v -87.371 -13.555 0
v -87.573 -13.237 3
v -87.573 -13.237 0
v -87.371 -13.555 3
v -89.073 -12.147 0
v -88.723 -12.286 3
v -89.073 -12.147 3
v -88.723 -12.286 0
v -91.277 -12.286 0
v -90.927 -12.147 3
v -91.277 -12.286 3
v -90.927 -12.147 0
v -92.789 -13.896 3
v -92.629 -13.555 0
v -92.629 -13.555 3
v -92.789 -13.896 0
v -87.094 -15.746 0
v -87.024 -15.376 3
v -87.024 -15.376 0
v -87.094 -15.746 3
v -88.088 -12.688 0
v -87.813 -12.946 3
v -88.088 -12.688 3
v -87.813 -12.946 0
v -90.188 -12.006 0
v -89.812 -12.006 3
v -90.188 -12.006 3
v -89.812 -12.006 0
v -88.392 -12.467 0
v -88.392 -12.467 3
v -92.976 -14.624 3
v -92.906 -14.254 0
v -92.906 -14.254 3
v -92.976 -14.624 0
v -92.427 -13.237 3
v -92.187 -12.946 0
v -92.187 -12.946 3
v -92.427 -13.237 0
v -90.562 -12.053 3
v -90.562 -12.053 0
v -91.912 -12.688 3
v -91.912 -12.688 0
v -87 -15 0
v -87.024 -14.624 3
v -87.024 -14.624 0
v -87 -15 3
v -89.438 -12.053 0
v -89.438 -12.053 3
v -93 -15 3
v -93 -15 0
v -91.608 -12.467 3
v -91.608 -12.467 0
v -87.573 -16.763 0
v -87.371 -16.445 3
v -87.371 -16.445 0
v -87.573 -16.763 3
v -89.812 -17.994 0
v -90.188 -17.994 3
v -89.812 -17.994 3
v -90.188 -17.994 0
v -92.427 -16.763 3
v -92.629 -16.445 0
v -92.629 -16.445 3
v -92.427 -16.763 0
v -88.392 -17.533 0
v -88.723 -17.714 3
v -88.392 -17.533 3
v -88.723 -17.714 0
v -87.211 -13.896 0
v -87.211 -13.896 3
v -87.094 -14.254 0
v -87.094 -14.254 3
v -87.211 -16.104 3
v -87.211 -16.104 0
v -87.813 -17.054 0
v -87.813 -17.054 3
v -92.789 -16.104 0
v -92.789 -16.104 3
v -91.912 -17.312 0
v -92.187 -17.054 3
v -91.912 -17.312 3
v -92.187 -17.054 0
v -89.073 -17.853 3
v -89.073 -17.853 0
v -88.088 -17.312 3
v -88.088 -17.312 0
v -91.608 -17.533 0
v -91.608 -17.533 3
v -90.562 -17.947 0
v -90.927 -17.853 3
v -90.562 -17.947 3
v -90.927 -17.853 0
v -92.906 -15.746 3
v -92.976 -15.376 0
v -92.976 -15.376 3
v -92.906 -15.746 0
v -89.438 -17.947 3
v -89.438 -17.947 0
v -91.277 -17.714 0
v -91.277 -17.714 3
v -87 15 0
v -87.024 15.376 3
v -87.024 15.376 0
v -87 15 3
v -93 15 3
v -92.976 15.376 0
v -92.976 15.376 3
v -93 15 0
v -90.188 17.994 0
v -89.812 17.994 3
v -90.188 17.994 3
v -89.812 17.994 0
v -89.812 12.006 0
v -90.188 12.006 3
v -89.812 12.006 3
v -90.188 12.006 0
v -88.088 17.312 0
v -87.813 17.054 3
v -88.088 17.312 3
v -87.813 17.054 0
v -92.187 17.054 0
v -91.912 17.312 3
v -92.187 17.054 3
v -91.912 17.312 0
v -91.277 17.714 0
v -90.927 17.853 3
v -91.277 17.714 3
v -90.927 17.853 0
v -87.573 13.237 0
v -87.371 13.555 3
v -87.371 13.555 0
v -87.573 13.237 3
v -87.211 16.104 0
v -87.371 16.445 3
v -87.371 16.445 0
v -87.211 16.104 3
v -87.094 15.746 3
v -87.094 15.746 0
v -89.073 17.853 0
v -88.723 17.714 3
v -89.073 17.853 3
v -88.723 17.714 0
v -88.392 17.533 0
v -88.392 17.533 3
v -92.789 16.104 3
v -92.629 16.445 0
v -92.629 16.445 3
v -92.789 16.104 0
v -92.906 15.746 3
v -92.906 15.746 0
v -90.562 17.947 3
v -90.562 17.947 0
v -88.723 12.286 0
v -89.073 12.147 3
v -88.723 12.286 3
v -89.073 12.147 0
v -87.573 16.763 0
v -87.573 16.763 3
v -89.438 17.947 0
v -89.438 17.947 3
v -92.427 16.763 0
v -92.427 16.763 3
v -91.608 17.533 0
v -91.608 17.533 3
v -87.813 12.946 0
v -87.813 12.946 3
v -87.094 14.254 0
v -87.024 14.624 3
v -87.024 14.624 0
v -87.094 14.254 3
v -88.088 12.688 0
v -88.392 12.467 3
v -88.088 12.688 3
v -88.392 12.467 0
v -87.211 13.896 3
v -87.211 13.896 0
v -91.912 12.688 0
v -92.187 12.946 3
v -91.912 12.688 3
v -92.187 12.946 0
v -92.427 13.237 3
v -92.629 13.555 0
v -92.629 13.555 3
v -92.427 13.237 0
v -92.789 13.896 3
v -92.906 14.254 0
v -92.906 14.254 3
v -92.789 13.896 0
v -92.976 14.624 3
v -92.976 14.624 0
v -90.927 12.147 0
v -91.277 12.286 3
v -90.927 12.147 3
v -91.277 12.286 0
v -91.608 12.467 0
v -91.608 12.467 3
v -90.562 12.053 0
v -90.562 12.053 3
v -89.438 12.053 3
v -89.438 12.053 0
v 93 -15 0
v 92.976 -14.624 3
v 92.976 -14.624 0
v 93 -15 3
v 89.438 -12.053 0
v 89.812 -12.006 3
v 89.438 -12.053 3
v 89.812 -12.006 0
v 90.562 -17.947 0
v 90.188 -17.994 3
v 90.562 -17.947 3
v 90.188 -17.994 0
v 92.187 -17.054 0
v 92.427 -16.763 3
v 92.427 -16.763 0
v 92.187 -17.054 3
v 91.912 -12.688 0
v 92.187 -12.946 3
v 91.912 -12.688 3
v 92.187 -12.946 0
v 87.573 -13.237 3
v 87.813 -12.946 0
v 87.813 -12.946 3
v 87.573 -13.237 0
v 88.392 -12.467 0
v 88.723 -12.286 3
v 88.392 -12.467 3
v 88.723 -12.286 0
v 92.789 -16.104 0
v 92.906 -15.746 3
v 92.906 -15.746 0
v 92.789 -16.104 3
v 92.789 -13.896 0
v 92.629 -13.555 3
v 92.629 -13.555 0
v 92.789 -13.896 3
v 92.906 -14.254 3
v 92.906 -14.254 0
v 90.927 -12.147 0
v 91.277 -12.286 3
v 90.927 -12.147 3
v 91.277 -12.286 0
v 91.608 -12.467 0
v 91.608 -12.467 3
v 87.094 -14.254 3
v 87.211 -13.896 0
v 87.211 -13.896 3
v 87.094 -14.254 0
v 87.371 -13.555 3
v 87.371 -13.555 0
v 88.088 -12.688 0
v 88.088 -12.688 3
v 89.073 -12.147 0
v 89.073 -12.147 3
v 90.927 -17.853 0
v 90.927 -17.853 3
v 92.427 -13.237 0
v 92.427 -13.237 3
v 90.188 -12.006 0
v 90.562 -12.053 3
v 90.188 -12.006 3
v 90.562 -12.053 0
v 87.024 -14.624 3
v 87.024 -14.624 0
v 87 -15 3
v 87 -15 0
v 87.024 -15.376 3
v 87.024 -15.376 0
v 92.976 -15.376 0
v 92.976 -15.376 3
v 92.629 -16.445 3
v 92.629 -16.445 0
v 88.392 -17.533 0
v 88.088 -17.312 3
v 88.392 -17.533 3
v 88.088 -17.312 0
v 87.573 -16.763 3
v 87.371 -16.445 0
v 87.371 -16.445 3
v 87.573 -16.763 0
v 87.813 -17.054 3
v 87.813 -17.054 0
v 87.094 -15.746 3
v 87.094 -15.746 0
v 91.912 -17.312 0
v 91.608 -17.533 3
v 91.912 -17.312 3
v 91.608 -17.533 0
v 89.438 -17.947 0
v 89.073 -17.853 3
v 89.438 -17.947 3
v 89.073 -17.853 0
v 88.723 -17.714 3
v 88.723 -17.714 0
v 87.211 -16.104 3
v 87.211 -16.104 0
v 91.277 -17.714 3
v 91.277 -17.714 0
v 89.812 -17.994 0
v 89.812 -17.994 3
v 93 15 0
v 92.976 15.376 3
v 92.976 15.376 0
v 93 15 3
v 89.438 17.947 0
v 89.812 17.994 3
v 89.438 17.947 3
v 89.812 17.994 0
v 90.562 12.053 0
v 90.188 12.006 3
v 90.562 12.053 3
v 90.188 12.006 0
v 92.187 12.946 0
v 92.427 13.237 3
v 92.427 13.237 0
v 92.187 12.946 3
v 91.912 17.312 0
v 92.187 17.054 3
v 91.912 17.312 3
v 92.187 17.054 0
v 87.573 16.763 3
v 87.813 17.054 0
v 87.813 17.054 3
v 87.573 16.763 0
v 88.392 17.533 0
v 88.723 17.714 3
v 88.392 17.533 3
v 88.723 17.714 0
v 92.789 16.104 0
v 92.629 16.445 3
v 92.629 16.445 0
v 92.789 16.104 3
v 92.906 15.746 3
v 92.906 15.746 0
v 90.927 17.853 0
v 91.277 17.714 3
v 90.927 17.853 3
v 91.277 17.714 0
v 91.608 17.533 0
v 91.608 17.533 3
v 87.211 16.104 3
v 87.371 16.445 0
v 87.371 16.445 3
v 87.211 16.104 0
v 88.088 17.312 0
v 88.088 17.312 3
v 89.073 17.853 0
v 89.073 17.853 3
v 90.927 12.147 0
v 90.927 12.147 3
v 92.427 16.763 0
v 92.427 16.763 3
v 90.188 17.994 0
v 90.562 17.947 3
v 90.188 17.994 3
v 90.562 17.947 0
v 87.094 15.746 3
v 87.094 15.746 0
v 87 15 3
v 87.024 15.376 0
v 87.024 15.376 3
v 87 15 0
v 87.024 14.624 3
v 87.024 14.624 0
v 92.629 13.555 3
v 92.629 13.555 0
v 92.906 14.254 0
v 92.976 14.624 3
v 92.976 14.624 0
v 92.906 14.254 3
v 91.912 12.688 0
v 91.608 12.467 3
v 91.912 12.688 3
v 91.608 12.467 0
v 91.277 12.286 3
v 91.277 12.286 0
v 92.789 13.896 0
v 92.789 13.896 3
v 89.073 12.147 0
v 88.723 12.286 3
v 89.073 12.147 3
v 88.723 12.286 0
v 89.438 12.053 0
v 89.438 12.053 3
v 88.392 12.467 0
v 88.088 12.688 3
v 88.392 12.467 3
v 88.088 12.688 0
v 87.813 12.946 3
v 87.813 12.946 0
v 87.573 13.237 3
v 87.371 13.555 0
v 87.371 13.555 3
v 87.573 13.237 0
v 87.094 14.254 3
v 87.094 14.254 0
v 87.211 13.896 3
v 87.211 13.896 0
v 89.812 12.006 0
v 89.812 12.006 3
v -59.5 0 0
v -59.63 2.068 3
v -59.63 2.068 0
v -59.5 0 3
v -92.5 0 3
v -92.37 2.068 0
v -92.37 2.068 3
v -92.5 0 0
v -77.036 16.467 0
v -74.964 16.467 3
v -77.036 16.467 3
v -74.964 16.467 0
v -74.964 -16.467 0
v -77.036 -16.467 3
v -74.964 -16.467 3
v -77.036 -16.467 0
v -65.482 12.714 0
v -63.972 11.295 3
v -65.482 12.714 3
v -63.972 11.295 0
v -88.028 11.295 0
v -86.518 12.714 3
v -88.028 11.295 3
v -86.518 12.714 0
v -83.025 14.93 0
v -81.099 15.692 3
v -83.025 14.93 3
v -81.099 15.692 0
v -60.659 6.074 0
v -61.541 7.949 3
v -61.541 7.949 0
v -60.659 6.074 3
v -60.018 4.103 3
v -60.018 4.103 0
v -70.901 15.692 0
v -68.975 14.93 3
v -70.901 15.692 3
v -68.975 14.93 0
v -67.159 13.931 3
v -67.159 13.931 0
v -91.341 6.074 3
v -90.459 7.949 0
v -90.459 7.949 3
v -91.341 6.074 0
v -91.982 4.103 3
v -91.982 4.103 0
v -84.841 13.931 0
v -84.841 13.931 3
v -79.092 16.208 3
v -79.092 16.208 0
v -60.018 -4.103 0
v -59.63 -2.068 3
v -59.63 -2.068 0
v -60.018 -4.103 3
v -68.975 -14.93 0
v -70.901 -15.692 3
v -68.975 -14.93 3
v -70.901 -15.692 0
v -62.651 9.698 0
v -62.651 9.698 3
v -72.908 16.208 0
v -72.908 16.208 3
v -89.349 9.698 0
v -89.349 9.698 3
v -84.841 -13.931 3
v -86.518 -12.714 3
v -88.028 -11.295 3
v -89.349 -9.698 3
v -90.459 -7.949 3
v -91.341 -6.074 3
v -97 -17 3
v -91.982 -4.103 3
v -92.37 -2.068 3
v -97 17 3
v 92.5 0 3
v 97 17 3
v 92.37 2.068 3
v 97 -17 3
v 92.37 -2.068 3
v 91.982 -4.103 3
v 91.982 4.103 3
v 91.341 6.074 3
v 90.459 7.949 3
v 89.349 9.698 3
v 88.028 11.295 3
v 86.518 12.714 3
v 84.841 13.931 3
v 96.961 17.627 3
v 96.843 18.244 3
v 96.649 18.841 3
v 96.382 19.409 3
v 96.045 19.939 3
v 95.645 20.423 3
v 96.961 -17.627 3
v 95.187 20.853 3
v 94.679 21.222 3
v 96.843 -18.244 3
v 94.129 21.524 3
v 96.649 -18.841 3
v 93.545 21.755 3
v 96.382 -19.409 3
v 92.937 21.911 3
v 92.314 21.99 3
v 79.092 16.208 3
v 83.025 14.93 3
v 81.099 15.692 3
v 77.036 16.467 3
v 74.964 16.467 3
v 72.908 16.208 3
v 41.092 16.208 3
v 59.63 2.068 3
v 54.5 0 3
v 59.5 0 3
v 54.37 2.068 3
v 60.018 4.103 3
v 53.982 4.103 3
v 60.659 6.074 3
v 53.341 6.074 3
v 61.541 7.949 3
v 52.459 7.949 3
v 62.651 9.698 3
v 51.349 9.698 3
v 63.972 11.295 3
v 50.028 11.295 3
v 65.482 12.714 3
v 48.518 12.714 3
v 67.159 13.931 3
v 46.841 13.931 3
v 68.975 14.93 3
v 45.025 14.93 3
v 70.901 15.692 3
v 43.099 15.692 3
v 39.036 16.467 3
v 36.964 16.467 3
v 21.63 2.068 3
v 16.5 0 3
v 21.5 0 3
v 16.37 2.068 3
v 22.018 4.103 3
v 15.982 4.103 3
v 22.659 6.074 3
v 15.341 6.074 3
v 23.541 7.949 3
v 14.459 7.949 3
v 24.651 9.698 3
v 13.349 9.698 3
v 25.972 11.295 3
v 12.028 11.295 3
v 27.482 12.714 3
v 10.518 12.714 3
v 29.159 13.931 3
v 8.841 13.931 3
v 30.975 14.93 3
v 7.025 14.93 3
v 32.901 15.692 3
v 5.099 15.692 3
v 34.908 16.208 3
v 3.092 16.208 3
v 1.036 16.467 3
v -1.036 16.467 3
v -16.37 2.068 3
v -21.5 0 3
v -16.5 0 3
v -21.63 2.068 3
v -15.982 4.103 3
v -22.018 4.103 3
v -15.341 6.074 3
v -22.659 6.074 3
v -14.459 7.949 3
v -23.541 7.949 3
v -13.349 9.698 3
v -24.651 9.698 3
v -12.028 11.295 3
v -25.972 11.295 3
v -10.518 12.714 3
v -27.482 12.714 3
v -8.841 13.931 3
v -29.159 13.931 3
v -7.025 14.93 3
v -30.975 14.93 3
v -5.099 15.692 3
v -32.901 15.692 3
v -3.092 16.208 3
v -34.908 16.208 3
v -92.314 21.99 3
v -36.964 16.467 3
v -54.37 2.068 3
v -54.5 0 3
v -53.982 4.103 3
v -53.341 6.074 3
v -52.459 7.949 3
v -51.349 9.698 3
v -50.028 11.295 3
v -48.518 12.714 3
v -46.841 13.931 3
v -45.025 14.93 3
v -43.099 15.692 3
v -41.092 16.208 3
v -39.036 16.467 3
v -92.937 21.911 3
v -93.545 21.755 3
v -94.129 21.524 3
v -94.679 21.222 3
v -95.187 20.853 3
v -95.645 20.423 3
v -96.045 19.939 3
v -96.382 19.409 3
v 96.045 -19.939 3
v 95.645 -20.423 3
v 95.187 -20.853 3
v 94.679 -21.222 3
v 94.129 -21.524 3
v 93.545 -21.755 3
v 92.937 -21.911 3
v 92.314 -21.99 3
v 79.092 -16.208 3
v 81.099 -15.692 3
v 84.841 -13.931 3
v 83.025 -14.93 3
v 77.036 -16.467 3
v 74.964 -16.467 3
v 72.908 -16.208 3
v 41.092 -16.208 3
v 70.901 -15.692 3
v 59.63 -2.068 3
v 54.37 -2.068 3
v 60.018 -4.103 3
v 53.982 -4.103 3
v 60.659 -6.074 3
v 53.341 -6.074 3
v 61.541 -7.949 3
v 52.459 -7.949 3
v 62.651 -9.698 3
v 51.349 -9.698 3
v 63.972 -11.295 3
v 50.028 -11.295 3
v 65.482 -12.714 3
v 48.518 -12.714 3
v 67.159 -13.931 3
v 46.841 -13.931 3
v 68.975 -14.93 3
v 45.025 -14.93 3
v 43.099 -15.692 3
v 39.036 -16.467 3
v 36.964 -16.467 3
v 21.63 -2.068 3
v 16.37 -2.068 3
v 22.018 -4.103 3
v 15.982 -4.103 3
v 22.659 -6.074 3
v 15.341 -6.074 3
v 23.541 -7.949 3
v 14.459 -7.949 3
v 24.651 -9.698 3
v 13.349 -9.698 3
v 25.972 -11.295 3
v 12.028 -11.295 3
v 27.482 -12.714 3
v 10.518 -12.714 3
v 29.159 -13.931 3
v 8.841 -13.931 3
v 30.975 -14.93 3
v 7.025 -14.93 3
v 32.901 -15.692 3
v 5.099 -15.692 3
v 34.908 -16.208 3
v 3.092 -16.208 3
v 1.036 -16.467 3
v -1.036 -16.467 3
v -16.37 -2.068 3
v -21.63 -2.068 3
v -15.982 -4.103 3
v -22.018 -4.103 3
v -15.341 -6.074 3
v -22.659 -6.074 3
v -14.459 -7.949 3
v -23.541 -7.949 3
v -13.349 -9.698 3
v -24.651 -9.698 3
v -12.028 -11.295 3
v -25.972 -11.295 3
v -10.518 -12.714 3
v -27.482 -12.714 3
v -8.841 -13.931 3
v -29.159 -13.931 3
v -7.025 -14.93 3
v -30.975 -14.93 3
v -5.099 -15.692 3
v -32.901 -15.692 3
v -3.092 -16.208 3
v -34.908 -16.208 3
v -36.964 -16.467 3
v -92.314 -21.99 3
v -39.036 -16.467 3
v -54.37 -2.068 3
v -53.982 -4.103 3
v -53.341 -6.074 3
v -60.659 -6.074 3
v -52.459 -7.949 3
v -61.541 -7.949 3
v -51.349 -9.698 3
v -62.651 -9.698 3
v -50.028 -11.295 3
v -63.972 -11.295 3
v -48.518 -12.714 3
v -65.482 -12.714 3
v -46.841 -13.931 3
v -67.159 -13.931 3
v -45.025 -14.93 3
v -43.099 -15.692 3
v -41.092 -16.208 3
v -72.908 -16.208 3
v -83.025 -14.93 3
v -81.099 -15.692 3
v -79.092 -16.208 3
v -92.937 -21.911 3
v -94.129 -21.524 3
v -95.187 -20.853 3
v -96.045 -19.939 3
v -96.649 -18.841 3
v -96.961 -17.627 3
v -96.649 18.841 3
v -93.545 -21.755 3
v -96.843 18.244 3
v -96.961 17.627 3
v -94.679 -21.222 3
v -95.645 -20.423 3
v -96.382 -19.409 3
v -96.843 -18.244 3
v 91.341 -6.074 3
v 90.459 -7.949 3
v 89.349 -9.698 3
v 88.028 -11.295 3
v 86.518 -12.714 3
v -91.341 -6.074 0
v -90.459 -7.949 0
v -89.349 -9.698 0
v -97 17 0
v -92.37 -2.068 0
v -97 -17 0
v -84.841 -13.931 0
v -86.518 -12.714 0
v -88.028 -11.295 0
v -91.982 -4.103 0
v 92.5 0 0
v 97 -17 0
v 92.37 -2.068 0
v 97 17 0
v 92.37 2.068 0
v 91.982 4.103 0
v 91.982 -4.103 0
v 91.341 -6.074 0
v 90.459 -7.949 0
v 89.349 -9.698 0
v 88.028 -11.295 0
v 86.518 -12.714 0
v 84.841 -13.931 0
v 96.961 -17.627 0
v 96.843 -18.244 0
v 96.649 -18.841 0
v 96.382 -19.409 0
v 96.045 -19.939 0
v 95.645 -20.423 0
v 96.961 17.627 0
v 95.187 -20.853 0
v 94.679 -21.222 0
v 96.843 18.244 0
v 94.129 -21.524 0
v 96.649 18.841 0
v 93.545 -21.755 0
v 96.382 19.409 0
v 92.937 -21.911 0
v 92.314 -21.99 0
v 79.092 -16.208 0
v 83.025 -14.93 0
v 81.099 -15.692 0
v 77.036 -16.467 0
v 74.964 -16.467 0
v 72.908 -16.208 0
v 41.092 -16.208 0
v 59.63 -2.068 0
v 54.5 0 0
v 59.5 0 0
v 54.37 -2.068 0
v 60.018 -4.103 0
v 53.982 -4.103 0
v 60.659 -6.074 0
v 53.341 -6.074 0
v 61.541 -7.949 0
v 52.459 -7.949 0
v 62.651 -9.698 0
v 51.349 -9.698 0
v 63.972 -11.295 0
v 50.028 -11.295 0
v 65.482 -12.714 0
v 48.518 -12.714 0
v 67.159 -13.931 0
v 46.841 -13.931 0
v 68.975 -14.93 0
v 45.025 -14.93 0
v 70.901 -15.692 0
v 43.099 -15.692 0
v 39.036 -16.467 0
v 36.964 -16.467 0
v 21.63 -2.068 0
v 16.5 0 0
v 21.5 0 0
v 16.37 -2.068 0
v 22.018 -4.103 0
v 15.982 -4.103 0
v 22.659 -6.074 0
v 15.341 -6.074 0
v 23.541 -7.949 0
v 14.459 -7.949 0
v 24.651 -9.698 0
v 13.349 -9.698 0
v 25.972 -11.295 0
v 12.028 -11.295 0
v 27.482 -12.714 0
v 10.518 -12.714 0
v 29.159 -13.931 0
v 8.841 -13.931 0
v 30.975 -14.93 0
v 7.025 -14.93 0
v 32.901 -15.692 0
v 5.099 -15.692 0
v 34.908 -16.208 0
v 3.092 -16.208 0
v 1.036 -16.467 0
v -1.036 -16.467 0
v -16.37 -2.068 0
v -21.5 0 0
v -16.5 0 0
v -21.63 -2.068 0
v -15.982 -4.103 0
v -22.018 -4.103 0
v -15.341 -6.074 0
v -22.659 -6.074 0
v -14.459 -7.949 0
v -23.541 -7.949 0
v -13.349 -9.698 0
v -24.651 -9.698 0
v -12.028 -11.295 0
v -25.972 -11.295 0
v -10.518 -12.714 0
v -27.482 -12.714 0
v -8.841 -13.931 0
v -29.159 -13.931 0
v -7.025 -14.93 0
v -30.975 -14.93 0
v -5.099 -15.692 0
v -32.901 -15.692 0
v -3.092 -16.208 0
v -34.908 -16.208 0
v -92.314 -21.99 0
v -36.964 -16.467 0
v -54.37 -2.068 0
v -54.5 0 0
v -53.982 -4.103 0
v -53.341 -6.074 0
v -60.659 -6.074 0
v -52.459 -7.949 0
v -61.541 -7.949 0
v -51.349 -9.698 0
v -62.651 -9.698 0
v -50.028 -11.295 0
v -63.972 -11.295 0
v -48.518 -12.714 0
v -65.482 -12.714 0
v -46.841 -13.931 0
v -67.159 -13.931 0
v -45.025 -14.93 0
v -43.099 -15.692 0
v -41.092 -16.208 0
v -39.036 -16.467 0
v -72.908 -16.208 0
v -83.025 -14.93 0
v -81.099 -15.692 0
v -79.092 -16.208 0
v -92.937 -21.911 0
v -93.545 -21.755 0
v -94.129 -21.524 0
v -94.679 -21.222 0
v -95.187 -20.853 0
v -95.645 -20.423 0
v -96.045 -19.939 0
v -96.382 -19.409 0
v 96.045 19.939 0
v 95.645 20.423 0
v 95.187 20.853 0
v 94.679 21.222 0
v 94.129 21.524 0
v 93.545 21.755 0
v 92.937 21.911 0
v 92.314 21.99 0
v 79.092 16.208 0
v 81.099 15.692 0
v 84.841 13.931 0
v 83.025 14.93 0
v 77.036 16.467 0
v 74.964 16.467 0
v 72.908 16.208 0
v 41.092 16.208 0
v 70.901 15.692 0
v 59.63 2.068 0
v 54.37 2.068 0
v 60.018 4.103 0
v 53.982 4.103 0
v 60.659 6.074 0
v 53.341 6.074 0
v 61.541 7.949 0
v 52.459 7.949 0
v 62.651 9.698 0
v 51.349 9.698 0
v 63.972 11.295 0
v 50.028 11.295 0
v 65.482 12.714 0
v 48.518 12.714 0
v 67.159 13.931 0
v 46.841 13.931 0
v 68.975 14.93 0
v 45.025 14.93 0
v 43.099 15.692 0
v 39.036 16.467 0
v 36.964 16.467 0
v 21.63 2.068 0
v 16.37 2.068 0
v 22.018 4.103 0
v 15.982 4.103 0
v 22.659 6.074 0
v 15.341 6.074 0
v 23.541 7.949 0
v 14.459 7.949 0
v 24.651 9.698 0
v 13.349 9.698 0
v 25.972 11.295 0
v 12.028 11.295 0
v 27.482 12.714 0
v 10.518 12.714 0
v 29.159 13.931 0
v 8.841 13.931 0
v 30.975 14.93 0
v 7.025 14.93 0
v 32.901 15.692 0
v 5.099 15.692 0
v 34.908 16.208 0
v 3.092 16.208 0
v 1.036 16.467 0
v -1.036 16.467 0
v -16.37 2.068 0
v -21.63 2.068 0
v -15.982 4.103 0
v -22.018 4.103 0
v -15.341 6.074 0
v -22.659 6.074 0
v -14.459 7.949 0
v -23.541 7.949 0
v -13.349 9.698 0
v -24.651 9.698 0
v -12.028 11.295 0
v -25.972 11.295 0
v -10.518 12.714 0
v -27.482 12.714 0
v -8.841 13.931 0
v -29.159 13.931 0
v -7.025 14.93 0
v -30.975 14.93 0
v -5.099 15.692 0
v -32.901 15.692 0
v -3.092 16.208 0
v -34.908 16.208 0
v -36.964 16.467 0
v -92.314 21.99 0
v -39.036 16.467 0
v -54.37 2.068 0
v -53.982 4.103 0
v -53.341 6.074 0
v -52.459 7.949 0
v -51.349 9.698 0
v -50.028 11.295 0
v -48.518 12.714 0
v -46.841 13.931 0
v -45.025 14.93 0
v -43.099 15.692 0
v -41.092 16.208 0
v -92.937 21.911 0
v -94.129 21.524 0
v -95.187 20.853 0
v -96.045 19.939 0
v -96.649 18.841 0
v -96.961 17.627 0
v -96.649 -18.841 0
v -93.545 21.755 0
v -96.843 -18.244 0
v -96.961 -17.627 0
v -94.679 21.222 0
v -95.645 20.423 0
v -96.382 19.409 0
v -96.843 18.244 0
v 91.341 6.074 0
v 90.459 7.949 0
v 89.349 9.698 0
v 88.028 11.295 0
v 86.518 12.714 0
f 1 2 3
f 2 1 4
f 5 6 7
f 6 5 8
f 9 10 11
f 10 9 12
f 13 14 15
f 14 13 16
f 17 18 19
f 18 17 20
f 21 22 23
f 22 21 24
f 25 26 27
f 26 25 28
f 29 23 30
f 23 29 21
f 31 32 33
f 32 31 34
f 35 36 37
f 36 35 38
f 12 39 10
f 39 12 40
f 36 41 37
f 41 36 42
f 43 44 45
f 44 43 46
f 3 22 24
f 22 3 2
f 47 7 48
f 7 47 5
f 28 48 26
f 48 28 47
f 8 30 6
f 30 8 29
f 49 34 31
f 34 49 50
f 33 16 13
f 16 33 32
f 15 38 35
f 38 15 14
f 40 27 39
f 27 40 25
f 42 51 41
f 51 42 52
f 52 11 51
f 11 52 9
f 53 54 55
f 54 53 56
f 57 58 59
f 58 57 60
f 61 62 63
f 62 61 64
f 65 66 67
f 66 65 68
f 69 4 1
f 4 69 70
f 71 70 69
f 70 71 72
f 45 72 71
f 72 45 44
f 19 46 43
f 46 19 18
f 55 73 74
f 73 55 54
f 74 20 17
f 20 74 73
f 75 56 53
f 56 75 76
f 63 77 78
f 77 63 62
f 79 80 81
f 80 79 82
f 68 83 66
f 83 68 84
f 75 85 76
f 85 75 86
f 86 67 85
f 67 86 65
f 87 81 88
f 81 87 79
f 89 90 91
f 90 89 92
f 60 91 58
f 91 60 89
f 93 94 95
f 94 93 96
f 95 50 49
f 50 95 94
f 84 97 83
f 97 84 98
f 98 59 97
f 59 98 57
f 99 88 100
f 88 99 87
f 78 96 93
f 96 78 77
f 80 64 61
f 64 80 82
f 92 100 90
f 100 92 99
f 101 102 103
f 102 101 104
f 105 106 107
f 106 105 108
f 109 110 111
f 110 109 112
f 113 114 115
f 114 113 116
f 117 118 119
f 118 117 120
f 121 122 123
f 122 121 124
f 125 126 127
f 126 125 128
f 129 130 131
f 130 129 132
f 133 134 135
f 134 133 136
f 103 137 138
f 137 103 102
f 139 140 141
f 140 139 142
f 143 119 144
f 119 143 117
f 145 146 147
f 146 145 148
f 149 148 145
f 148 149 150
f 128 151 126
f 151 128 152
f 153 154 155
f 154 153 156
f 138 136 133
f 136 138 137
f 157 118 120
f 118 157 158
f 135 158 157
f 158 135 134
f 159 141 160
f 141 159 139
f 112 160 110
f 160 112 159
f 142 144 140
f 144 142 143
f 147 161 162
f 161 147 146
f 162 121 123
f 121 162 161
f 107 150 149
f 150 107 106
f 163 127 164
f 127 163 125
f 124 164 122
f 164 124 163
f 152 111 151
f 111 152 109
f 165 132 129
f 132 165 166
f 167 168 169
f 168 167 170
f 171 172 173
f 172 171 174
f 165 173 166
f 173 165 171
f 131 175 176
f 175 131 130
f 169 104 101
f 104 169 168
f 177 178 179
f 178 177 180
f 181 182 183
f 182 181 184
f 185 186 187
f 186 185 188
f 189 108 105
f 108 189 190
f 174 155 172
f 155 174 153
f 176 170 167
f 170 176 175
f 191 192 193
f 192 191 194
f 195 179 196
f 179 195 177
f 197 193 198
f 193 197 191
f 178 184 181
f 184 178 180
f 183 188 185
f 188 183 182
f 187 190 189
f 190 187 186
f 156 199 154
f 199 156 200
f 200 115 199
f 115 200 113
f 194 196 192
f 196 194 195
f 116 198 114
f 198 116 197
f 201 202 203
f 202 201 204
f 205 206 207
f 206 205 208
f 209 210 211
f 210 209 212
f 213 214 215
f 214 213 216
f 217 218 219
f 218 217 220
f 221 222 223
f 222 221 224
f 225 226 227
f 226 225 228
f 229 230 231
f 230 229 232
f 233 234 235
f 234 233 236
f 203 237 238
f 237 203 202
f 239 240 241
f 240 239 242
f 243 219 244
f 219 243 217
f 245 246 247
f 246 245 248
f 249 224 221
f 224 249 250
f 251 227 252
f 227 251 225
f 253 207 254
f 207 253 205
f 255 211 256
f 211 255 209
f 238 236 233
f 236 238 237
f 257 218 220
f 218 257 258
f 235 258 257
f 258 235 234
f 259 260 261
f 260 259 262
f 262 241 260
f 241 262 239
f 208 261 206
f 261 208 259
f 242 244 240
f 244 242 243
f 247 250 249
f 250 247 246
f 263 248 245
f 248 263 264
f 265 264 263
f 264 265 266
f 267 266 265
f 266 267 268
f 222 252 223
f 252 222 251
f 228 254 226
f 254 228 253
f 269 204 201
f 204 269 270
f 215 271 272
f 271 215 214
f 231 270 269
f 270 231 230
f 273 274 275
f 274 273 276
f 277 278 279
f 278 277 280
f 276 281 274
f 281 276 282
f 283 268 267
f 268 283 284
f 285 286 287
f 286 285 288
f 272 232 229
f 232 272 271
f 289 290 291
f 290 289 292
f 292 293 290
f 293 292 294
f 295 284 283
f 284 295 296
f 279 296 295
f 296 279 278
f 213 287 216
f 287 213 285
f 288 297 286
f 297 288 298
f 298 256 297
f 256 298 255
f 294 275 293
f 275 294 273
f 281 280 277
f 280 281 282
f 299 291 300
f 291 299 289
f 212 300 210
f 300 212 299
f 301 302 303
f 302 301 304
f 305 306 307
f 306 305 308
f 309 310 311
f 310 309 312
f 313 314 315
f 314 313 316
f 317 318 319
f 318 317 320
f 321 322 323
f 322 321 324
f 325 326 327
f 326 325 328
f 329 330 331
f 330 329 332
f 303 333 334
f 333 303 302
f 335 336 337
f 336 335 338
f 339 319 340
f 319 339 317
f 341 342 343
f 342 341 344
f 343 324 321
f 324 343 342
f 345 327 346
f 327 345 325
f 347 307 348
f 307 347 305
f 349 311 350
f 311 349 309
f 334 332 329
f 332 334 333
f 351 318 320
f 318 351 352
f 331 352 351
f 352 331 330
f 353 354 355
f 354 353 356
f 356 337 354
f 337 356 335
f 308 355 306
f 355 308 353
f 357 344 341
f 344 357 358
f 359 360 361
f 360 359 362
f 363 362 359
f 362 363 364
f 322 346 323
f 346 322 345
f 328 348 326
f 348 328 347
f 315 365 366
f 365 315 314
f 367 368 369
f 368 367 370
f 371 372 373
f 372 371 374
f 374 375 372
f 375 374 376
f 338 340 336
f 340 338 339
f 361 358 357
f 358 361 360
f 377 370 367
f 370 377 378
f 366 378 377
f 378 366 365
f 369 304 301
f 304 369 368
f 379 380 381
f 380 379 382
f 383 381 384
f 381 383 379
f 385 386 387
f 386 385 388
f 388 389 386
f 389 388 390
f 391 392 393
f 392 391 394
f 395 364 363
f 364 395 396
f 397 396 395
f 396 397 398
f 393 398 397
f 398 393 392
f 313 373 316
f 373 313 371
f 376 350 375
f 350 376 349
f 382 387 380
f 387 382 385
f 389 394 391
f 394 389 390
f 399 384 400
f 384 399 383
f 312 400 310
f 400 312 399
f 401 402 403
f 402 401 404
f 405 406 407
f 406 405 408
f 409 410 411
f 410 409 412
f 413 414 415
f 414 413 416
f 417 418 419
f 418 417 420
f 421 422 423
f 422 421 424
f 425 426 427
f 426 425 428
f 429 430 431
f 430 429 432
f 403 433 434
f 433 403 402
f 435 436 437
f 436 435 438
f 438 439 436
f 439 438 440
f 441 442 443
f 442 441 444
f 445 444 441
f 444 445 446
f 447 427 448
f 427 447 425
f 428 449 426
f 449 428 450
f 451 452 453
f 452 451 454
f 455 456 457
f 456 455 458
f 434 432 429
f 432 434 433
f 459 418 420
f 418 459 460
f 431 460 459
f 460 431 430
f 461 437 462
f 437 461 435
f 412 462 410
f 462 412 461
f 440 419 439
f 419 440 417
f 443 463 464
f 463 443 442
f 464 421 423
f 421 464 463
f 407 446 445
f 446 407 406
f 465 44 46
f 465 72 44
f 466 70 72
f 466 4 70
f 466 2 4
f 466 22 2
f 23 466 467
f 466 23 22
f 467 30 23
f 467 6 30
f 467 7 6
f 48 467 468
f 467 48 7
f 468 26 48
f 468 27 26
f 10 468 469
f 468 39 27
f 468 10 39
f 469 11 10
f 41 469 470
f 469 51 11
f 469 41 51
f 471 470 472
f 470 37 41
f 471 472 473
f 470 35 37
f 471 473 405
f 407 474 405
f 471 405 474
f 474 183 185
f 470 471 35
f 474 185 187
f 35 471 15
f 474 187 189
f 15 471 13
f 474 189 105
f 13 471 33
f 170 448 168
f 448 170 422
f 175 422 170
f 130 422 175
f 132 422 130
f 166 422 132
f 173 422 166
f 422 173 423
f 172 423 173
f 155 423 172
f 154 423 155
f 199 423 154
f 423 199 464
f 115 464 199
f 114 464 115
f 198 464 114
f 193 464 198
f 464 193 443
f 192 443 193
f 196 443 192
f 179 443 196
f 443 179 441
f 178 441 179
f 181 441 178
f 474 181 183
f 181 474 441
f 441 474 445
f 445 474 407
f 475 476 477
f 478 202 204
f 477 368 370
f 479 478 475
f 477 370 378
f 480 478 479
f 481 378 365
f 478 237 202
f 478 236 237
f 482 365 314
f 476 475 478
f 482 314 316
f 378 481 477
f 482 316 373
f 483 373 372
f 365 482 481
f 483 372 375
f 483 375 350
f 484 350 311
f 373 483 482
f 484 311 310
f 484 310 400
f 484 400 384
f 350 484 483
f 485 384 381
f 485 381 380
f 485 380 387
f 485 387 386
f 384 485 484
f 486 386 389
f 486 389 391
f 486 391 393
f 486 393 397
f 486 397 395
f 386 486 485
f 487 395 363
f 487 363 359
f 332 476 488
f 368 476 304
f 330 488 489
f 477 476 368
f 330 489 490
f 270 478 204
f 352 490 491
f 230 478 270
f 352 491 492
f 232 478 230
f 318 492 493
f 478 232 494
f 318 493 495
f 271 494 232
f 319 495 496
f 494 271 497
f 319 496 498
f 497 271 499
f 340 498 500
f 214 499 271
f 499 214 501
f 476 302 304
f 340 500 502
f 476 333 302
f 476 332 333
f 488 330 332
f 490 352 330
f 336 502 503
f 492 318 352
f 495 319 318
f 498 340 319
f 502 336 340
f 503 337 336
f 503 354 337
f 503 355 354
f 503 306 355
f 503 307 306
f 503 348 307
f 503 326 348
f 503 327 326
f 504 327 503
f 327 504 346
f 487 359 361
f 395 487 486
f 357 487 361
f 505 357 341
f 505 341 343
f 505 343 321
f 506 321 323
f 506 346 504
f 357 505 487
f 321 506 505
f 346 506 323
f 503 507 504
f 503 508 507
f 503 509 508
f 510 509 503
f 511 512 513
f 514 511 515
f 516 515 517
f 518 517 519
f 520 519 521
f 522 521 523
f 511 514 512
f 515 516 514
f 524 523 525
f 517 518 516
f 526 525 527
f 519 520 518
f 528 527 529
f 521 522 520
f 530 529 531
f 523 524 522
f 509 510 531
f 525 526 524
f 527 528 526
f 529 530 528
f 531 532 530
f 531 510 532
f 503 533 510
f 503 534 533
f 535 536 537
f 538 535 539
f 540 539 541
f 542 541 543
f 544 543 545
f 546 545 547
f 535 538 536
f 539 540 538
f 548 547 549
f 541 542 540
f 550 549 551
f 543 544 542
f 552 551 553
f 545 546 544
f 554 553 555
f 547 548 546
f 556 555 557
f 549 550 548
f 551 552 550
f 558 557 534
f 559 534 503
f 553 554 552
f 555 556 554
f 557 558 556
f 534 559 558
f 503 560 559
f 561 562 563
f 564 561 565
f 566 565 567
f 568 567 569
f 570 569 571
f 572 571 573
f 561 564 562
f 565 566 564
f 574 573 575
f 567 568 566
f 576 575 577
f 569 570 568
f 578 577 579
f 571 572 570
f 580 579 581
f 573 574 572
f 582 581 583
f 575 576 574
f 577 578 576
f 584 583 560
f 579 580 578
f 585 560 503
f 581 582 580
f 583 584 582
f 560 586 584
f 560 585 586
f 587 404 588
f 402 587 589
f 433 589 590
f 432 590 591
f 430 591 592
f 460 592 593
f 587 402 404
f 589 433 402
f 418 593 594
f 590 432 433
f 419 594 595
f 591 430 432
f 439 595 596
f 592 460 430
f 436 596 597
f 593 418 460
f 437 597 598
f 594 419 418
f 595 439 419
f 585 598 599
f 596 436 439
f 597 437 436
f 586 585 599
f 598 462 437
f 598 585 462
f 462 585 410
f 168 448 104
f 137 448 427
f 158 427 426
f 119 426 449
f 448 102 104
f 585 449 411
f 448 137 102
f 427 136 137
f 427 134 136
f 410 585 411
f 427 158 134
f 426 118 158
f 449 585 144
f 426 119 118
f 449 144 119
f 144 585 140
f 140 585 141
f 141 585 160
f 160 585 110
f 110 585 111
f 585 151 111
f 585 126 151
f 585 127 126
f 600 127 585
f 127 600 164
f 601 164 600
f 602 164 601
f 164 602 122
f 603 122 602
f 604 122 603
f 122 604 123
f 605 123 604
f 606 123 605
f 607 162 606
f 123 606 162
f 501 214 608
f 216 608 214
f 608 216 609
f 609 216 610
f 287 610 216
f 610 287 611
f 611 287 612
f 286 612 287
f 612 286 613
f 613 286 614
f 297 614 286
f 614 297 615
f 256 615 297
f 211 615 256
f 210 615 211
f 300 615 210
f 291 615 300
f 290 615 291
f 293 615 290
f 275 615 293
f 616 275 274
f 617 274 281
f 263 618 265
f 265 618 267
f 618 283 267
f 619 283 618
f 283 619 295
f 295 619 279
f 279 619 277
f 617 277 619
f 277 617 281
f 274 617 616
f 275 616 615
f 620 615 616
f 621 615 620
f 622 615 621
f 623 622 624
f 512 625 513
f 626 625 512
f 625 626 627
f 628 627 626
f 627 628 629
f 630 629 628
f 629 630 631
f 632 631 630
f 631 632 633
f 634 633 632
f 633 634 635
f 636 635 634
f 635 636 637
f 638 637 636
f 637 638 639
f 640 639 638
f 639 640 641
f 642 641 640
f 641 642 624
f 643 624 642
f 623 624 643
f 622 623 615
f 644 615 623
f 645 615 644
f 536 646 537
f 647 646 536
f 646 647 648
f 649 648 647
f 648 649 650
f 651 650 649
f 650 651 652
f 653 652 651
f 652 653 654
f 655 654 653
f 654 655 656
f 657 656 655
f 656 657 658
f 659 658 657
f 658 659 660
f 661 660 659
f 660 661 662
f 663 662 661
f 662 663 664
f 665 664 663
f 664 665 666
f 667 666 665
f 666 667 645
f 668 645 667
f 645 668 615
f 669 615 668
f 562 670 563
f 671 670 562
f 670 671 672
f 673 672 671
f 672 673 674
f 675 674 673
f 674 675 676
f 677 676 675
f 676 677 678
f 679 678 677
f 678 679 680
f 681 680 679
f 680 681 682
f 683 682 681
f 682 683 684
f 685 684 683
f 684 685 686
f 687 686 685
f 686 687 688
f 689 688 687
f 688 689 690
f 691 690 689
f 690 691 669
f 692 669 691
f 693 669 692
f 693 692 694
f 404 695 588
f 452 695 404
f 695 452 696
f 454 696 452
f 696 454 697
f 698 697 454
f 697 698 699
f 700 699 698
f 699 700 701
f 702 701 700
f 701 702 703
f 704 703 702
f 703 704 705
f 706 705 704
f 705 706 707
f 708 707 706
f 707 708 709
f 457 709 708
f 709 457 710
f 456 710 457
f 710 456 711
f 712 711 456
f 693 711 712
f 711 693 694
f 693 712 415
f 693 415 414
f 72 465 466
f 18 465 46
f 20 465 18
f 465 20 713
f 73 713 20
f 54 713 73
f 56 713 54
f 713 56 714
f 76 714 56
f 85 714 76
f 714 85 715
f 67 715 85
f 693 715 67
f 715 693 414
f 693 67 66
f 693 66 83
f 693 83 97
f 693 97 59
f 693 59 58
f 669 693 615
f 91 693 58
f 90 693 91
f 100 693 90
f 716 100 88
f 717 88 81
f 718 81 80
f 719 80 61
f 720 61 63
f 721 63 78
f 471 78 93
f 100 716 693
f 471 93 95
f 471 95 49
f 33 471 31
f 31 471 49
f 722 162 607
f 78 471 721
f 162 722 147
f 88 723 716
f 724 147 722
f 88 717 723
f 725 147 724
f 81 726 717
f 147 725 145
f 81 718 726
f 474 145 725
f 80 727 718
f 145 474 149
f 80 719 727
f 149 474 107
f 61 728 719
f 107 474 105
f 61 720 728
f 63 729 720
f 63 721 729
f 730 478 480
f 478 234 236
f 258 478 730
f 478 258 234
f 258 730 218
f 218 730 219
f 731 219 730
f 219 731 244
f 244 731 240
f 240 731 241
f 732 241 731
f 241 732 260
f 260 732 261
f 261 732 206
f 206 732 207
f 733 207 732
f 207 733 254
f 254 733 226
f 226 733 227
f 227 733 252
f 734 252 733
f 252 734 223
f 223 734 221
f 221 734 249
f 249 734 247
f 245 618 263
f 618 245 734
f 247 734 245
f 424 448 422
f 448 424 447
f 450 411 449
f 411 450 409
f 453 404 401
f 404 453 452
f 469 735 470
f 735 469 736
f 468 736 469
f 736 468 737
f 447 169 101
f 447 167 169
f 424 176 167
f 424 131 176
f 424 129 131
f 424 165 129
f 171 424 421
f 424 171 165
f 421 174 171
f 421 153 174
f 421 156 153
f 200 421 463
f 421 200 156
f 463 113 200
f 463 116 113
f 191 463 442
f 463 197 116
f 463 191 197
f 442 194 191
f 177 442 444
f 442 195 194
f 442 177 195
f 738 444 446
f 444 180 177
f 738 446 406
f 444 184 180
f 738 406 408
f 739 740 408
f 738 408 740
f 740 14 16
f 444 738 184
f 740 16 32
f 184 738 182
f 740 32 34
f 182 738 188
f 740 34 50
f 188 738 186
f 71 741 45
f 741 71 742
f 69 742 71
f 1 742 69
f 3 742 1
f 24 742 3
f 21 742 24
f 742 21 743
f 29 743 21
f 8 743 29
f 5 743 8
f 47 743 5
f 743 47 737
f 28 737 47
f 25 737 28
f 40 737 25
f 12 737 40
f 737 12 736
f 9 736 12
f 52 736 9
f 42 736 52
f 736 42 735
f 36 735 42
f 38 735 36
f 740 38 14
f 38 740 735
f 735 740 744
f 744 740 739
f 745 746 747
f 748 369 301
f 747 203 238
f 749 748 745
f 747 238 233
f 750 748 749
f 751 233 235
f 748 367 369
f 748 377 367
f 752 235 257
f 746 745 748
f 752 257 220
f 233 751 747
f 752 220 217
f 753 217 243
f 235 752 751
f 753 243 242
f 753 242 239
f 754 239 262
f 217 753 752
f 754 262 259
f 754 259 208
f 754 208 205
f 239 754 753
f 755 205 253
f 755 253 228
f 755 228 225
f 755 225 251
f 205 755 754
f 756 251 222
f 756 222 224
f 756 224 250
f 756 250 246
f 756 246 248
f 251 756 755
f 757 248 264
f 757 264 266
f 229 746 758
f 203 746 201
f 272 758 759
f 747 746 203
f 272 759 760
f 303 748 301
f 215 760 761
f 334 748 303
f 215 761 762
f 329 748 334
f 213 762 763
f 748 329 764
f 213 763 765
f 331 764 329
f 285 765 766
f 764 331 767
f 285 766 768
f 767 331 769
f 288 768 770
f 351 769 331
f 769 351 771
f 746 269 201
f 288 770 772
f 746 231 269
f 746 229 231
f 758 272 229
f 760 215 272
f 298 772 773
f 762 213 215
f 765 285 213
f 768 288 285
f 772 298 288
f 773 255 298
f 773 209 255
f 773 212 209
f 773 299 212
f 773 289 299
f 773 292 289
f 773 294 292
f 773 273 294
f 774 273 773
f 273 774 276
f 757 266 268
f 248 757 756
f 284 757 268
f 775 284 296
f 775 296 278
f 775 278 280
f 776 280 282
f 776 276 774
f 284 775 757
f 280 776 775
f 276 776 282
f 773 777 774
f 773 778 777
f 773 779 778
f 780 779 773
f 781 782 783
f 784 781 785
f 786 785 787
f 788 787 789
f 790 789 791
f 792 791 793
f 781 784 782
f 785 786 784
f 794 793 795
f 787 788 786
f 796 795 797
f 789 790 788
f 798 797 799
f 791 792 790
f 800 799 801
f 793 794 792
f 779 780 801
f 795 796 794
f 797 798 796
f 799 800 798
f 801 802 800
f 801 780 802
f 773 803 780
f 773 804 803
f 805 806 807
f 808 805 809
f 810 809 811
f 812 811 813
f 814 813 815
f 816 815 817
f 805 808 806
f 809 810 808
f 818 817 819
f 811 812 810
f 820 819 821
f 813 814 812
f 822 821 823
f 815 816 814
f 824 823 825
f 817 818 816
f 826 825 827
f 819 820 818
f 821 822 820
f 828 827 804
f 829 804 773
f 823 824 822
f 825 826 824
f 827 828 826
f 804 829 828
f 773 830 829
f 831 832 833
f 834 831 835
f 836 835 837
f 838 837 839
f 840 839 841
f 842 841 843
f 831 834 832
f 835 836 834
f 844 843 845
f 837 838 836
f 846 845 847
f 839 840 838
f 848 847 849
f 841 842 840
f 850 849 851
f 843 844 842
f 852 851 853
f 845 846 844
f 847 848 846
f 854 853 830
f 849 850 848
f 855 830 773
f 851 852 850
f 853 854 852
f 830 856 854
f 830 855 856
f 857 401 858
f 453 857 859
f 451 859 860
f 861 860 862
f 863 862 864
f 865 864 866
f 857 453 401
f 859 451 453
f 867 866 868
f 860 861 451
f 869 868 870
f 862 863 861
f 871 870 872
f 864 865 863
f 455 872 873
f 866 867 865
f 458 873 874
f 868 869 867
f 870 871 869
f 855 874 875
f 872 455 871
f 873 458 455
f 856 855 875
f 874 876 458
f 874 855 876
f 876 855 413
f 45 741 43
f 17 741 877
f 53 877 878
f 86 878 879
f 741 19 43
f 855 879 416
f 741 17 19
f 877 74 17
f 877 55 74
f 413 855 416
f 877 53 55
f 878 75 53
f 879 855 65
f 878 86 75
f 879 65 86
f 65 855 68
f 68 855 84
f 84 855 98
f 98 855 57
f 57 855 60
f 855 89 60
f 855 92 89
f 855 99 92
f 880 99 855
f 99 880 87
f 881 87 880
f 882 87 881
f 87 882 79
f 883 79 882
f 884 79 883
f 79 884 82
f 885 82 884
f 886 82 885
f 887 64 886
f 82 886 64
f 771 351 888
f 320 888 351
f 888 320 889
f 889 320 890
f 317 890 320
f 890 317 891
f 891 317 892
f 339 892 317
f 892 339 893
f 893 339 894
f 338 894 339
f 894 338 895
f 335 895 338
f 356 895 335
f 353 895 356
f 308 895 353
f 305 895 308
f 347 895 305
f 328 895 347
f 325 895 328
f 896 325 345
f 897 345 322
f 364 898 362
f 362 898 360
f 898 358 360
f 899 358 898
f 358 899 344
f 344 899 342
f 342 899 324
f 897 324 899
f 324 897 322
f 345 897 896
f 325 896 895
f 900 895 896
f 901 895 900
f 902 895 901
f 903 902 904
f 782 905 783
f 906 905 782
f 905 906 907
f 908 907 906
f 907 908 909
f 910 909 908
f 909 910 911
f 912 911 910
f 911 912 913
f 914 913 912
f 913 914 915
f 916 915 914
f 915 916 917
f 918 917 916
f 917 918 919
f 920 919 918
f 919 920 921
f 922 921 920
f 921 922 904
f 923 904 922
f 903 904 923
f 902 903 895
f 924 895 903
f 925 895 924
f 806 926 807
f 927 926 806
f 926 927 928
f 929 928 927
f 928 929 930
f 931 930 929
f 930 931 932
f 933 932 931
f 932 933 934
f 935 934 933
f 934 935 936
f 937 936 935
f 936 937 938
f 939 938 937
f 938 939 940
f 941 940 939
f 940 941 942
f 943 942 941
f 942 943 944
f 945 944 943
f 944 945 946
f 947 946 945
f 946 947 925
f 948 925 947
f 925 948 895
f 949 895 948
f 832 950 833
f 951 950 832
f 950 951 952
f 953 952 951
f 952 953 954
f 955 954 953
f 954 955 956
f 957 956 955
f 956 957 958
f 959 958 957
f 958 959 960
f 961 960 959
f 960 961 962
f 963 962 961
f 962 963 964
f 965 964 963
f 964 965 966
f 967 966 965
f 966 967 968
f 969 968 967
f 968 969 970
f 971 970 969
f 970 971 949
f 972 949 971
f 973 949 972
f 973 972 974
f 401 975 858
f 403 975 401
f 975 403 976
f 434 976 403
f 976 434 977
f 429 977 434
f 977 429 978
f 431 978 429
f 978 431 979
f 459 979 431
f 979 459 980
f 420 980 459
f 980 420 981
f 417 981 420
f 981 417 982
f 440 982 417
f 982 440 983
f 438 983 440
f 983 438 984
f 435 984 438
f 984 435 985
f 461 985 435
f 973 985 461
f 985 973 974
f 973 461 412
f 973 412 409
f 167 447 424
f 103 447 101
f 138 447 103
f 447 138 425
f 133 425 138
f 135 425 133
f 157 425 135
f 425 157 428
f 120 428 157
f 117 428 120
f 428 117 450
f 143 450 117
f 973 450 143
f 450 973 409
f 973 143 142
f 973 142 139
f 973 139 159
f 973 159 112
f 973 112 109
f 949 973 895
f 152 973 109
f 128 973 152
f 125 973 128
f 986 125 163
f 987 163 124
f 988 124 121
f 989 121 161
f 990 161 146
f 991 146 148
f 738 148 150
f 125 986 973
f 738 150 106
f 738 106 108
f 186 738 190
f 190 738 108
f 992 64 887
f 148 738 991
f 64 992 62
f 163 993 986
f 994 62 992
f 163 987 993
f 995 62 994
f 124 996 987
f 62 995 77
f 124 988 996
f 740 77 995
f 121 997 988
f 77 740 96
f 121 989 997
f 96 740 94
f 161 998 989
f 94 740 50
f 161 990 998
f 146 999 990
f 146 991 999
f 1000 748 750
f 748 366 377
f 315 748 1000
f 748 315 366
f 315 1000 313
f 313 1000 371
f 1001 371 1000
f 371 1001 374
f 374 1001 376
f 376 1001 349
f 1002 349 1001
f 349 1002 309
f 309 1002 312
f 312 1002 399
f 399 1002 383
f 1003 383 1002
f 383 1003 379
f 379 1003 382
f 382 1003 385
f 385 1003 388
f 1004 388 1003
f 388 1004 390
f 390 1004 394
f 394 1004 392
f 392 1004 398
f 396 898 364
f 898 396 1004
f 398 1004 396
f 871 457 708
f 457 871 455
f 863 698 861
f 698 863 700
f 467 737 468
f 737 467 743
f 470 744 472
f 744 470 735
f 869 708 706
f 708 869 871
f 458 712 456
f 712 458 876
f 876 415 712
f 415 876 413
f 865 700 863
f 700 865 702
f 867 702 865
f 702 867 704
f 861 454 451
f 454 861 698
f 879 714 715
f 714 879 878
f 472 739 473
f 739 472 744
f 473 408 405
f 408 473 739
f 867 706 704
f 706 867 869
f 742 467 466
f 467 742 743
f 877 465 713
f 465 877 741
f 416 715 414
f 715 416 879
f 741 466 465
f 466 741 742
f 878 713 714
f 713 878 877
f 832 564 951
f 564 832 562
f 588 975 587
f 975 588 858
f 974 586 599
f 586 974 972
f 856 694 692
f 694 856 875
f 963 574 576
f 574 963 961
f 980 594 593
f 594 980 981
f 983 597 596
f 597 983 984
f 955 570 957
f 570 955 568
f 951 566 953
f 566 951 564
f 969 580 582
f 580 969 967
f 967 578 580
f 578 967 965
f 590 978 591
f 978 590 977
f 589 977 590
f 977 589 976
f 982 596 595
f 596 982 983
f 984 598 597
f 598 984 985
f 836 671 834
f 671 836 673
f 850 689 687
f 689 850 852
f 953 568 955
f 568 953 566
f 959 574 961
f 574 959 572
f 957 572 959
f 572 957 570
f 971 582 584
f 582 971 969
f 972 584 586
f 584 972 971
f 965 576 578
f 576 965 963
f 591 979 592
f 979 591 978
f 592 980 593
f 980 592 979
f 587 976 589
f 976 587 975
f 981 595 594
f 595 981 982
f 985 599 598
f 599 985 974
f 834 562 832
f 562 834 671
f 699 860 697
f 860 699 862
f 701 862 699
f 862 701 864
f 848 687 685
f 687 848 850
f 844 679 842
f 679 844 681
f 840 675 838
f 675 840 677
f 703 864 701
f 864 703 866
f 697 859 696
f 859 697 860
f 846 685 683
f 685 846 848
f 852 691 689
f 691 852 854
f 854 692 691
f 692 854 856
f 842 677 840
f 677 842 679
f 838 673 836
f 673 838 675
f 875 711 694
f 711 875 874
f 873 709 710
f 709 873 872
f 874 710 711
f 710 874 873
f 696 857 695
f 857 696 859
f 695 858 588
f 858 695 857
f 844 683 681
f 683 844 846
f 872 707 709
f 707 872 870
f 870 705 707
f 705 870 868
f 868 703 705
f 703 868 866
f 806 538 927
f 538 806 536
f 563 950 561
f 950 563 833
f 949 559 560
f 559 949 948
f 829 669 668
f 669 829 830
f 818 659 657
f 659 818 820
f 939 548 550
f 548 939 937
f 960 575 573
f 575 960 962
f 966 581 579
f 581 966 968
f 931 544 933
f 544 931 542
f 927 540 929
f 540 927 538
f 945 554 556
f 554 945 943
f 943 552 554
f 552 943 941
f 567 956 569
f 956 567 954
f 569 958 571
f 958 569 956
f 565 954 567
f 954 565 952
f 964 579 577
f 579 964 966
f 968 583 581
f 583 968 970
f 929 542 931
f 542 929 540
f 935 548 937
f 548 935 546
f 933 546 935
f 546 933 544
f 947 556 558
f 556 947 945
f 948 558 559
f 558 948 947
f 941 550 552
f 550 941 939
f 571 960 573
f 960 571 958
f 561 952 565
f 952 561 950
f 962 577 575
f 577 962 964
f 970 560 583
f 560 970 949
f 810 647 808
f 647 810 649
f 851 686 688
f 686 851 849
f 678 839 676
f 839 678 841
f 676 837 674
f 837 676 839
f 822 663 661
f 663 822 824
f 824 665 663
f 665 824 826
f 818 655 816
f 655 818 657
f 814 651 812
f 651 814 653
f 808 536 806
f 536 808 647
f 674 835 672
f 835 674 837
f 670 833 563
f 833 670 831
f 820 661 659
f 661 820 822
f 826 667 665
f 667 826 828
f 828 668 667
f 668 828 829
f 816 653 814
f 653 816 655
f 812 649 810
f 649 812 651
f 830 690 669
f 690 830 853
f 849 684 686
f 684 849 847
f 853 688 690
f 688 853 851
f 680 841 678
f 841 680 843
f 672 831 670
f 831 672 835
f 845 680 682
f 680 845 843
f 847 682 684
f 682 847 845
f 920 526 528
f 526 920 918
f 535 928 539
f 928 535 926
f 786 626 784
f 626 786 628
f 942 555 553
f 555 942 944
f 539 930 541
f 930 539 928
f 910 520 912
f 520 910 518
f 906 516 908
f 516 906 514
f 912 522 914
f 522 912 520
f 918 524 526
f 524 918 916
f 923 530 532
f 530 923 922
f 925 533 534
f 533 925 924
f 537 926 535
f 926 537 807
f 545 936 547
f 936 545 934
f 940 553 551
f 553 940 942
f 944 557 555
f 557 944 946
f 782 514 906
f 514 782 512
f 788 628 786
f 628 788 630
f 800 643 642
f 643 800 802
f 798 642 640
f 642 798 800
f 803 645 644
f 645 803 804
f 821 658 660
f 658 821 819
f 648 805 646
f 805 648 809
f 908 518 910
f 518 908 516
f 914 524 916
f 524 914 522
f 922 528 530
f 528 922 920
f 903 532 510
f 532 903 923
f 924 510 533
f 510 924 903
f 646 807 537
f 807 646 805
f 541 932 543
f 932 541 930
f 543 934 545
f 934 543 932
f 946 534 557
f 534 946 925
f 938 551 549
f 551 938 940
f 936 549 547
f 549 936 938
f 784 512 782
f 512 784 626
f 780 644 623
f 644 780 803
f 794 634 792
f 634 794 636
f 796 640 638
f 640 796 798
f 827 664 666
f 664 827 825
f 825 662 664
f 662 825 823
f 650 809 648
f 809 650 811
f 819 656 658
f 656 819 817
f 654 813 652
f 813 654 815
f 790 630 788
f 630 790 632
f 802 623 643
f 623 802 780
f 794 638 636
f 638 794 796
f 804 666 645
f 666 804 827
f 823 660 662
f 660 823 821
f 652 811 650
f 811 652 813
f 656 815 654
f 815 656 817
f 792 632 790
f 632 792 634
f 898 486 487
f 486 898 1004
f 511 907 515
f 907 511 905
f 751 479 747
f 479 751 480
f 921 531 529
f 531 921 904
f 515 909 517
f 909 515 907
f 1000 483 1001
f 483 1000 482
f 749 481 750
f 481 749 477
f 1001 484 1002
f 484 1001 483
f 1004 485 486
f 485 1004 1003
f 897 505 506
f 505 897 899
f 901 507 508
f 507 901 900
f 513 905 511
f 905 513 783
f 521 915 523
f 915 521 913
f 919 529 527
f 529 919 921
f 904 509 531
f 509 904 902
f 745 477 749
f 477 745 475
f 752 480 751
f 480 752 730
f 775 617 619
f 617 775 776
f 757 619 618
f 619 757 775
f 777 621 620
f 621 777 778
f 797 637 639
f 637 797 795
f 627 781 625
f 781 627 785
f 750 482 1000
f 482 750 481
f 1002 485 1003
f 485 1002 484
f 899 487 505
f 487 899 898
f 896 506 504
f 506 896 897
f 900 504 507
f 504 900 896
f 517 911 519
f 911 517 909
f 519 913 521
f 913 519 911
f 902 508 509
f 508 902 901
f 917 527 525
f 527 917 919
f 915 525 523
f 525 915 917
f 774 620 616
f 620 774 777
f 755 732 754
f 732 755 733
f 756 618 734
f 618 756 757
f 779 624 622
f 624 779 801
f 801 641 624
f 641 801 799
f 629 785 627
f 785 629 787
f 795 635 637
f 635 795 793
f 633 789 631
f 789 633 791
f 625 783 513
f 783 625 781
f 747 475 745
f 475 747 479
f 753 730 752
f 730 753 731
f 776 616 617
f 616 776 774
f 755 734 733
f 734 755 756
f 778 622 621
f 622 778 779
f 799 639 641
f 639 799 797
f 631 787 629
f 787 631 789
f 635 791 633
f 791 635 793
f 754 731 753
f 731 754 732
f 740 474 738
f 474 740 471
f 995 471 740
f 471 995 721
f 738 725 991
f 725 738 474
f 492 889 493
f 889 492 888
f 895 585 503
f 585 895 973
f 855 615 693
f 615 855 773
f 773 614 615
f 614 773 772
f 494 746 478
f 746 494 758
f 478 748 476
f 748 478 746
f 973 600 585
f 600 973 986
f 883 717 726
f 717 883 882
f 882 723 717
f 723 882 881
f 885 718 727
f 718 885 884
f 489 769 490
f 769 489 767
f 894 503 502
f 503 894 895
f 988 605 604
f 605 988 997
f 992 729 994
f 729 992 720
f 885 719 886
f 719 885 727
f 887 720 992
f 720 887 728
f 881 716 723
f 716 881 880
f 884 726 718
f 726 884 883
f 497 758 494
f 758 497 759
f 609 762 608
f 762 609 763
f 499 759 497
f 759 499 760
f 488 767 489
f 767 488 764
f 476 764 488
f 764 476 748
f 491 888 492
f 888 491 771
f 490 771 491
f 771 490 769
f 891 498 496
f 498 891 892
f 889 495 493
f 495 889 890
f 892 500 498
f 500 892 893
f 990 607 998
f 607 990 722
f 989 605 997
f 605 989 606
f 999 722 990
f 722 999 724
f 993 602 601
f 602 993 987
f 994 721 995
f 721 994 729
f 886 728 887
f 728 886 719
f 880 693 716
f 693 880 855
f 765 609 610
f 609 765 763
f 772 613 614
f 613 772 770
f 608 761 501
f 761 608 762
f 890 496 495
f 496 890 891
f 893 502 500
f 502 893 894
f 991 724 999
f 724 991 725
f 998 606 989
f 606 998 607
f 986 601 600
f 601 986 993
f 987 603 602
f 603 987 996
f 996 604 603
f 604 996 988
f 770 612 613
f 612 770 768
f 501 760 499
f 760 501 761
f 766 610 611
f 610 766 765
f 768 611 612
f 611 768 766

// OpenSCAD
$fn = 50;


difference() {
	union() {
		hull() {
			translate(v = [-92.0000000000, 17.0000000000, 0]) {
				cylinder(h = 3, r = 5);
			}
			translate(v = [92.0000000000, 17.0000000000, 0]) {
				cylinder(h = 3, r = 5);
			}
			translate(v = [-92.0000000000, -17.0000000000, 0]) {
				cylinder(h = 3, r = 5);
			}
			translate(v = [92.0000000000, -17.0000000000, 0]) {
				cylinder(h = 3, r = 5);
			}
		}
	}
	union() {
		#translate(v = [-90.0000000000, -15.0000000000, -100.0000000000]) {
			cylinder(h = 200, r = 3.0000000000);
		}
		#translate(v = [-90.0000000000, 15.0000000000, -100.0000000000]) {
			cylinder(h = 200, r = 3.0000000000);
		}
		#translate(v = [90.0000000000, -15.0000000000, -100.0000000000]) {
			cylinder(h = 200, r = 3.0000000000);
		}
		#translate(v = [90.0000000000, 15.0000000000, -100.0000000000]) {
			cylinder(h = 200, r = 3.0000000000);
		}
		#translate(v = [-76.0000000000, 0, 0]) {
			cylinder(h = 3, r = 16.5000000000);
		}
		#translate(v = [-38.0000000000, 0, 0]) {
			cylinder(h = 3, r = 16.5000000000);
		}
		#cylinder(h = 3, r = 16.5000000000);
		#translate(v = [38.0000000000, 0, 0]) {
			cylinder(h = 3, r = 16.5000000000);
		}
		#translate(v = [76.0000000000, 0, 0]) {
			cylinder(h = 3, r = 16.5000000000);
		}
	}
}
